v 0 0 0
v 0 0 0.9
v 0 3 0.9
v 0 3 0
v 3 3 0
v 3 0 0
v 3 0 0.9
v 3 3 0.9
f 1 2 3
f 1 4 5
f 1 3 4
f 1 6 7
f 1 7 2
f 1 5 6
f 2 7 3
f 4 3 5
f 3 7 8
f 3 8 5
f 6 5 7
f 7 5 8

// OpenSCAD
/* Warning, this is a very basic generator with a lot of approximation 
input data : [VQFN, Q8A, 3x3x0.9mm, 19, , B, C04-01273B]
generated by com.zoubworld.electronics.cad.model3d.Basic
Date : Sun Feb 15 10:50:49 CET 2026
*/

//body
color("black")
translate([0,0,0])
cube([3.0,3.0,0.9], center=false);
